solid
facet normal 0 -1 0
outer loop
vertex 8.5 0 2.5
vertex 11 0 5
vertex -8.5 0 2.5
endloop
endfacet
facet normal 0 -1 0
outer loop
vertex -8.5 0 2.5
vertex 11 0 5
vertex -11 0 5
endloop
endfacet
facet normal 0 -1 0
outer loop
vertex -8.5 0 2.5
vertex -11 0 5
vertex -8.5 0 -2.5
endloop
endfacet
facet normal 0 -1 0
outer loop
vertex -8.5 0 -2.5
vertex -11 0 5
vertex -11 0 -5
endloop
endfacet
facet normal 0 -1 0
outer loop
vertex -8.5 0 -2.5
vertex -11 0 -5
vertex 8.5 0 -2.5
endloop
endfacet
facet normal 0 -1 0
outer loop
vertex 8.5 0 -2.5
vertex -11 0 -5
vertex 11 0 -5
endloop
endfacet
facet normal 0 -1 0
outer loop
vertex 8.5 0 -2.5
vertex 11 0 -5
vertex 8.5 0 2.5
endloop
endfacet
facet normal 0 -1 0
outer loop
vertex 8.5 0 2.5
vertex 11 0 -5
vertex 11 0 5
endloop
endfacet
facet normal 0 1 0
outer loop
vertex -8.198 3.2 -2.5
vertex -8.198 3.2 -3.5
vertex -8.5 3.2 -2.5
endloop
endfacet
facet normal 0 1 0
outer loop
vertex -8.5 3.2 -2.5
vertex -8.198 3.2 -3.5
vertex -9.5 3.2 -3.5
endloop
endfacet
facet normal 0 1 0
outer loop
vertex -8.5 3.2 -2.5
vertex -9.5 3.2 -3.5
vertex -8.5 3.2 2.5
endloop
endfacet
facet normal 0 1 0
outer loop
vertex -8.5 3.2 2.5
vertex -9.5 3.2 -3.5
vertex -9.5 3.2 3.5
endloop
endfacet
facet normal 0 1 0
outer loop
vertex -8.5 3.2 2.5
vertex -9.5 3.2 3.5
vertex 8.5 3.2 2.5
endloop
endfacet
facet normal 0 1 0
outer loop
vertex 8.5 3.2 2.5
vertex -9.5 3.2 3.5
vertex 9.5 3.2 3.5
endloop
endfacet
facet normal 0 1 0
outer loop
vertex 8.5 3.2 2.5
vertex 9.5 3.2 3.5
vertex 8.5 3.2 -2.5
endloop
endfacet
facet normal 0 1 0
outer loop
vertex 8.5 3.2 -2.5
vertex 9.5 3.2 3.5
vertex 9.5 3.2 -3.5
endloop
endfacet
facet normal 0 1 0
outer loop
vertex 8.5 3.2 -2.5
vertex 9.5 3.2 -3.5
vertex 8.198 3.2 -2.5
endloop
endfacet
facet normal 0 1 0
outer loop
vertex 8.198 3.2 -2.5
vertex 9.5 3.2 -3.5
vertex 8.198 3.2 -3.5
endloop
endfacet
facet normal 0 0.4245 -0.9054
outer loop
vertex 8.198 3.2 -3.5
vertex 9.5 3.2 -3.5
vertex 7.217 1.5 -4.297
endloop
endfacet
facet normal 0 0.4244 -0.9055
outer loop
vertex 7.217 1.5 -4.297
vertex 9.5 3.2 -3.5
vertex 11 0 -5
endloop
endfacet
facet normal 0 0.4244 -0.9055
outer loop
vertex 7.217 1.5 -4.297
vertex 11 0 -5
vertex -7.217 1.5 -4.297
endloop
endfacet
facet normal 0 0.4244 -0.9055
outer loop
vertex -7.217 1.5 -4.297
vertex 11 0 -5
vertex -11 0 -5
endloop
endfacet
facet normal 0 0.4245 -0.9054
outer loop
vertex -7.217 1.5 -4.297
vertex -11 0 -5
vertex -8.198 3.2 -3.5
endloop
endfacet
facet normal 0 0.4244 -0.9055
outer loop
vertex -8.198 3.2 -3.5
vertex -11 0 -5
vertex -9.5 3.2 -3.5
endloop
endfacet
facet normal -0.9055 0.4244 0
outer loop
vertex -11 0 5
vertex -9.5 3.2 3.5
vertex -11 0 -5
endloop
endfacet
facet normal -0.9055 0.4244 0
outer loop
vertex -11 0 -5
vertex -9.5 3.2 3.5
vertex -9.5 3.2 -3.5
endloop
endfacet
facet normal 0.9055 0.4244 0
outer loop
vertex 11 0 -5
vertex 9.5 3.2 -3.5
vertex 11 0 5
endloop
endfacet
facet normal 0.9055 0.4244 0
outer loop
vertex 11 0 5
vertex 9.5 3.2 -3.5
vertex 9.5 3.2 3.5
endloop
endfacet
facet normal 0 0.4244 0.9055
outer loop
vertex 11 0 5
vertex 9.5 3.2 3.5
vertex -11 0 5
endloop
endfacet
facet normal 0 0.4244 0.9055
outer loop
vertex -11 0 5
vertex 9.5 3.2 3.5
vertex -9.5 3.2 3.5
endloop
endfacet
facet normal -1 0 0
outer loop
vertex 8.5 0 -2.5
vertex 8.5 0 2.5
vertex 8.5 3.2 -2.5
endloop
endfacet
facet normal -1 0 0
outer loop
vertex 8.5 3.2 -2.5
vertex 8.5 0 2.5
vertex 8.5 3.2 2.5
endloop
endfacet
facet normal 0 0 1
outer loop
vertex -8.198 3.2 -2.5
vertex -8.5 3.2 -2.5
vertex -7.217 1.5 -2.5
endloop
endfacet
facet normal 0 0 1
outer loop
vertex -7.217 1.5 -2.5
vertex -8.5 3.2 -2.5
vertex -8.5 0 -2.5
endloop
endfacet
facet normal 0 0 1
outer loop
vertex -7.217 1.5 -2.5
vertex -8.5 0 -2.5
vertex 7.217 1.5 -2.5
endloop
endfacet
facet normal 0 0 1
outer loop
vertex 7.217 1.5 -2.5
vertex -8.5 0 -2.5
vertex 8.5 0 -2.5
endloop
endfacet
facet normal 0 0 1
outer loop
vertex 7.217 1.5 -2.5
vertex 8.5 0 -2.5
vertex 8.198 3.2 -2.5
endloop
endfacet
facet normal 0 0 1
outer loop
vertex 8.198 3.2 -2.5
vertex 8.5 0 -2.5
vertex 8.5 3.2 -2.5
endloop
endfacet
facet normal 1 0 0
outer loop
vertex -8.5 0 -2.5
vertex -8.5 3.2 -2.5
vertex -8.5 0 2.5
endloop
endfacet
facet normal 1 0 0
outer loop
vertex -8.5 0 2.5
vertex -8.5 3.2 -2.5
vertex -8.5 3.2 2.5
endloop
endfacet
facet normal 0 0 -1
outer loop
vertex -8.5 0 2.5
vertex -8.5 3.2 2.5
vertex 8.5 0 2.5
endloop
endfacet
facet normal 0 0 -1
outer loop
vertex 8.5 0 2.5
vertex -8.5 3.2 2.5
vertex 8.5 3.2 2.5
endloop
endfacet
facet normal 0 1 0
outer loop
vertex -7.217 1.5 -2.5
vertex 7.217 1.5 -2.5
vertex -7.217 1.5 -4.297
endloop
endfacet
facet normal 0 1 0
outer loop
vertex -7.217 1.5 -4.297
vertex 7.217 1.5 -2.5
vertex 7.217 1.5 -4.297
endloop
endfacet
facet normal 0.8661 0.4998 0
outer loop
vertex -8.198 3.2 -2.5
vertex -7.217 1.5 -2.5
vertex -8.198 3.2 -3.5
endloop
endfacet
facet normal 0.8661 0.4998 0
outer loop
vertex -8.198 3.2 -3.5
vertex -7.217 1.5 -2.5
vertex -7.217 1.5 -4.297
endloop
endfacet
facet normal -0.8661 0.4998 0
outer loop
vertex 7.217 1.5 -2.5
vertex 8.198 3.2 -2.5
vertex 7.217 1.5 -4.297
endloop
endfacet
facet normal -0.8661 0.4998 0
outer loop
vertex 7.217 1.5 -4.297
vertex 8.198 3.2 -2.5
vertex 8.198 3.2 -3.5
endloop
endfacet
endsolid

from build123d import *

# Parameters (mm, degrees)
CROQUIS2_W            = 19
CROQUIS2_H            = 7
CROQUIS1_W            = 22
CROQUIS1_H            = 10
CORTAR_EXTRUIR1_REACH = 5.2
CROQUIS1_3_W          = 17
CROQUIS1_3_H          = 5
CORTAR_EXTRUIR2_REACH = 7


with BuildPart() as part:
    # Croquis2 → Recubrir1 section 0
    with BuildSketch(Plane(origin=(0, 3.2, 0), x_dir=(1, 0, 0), z_dir=(0, 1, 0))):
        Rectangle(CROQUIS2_W, CROQUIS2_H)
    # Croquis1 → Recubrir1 section 1
    with BuildSketch(Plane(origin=(0, 0, 0), x_dir=(1, 0, 0), z_dir=(0, 1, 0))):
        Rectangle(CROQUIS1_W, CROQUIS1_H)
    loft()

    # Croquis1<3> → Cortar-Extruir1 (cut, up to next)
    with BuildSketch(Plane(origin=(0, 0, 0), x_dir=(1, 0, 0), z_dir=(0, 1, 0)), mode=Mode.PRIVATE) as cortar_extruir1_sk1:
        Rectangle(CROQUIS1_3_W, CROQUIS1_3_H)
    cortar_extruir1_tool1 = extrude(cortar_extruir1_sk1.sketch, amount=CORTAR_EXTRUIR1_REACH, mode=Mode.PRIVATE) & part.part
    add(cortar_extruir1_tool1.solids().sort_by_distance((0, 0, 0))[0], mode=Mode.SUBTRACT)

    # Croquis4 → Cortar-Extruir2 (cut, up to next)
    with BuildSketch(Plane.XY, mode=Mode.PRIVATE) as cortar_extruir2_sk1:
        Polygon((7.216878365, 1.5), (14.43375673, 14), (7.216878365, 26.5), (-7.216878365, 26.5), (-14.43375673, 14), (-7.216878365, 1.5), align=None)
    cortar_extruir2_tool1 = extrude(cortar_extruir2_sk1.sketch, amount=-CORTAR_EXTRUIR2_REACH, mode=Mode.PRIVATE) & part.part
    add(cortar_extruir2_tool1.solids().sort_by_distance((0, 14, 0))[0], mode=Mode.SUBTRACT)


solid = part.part
